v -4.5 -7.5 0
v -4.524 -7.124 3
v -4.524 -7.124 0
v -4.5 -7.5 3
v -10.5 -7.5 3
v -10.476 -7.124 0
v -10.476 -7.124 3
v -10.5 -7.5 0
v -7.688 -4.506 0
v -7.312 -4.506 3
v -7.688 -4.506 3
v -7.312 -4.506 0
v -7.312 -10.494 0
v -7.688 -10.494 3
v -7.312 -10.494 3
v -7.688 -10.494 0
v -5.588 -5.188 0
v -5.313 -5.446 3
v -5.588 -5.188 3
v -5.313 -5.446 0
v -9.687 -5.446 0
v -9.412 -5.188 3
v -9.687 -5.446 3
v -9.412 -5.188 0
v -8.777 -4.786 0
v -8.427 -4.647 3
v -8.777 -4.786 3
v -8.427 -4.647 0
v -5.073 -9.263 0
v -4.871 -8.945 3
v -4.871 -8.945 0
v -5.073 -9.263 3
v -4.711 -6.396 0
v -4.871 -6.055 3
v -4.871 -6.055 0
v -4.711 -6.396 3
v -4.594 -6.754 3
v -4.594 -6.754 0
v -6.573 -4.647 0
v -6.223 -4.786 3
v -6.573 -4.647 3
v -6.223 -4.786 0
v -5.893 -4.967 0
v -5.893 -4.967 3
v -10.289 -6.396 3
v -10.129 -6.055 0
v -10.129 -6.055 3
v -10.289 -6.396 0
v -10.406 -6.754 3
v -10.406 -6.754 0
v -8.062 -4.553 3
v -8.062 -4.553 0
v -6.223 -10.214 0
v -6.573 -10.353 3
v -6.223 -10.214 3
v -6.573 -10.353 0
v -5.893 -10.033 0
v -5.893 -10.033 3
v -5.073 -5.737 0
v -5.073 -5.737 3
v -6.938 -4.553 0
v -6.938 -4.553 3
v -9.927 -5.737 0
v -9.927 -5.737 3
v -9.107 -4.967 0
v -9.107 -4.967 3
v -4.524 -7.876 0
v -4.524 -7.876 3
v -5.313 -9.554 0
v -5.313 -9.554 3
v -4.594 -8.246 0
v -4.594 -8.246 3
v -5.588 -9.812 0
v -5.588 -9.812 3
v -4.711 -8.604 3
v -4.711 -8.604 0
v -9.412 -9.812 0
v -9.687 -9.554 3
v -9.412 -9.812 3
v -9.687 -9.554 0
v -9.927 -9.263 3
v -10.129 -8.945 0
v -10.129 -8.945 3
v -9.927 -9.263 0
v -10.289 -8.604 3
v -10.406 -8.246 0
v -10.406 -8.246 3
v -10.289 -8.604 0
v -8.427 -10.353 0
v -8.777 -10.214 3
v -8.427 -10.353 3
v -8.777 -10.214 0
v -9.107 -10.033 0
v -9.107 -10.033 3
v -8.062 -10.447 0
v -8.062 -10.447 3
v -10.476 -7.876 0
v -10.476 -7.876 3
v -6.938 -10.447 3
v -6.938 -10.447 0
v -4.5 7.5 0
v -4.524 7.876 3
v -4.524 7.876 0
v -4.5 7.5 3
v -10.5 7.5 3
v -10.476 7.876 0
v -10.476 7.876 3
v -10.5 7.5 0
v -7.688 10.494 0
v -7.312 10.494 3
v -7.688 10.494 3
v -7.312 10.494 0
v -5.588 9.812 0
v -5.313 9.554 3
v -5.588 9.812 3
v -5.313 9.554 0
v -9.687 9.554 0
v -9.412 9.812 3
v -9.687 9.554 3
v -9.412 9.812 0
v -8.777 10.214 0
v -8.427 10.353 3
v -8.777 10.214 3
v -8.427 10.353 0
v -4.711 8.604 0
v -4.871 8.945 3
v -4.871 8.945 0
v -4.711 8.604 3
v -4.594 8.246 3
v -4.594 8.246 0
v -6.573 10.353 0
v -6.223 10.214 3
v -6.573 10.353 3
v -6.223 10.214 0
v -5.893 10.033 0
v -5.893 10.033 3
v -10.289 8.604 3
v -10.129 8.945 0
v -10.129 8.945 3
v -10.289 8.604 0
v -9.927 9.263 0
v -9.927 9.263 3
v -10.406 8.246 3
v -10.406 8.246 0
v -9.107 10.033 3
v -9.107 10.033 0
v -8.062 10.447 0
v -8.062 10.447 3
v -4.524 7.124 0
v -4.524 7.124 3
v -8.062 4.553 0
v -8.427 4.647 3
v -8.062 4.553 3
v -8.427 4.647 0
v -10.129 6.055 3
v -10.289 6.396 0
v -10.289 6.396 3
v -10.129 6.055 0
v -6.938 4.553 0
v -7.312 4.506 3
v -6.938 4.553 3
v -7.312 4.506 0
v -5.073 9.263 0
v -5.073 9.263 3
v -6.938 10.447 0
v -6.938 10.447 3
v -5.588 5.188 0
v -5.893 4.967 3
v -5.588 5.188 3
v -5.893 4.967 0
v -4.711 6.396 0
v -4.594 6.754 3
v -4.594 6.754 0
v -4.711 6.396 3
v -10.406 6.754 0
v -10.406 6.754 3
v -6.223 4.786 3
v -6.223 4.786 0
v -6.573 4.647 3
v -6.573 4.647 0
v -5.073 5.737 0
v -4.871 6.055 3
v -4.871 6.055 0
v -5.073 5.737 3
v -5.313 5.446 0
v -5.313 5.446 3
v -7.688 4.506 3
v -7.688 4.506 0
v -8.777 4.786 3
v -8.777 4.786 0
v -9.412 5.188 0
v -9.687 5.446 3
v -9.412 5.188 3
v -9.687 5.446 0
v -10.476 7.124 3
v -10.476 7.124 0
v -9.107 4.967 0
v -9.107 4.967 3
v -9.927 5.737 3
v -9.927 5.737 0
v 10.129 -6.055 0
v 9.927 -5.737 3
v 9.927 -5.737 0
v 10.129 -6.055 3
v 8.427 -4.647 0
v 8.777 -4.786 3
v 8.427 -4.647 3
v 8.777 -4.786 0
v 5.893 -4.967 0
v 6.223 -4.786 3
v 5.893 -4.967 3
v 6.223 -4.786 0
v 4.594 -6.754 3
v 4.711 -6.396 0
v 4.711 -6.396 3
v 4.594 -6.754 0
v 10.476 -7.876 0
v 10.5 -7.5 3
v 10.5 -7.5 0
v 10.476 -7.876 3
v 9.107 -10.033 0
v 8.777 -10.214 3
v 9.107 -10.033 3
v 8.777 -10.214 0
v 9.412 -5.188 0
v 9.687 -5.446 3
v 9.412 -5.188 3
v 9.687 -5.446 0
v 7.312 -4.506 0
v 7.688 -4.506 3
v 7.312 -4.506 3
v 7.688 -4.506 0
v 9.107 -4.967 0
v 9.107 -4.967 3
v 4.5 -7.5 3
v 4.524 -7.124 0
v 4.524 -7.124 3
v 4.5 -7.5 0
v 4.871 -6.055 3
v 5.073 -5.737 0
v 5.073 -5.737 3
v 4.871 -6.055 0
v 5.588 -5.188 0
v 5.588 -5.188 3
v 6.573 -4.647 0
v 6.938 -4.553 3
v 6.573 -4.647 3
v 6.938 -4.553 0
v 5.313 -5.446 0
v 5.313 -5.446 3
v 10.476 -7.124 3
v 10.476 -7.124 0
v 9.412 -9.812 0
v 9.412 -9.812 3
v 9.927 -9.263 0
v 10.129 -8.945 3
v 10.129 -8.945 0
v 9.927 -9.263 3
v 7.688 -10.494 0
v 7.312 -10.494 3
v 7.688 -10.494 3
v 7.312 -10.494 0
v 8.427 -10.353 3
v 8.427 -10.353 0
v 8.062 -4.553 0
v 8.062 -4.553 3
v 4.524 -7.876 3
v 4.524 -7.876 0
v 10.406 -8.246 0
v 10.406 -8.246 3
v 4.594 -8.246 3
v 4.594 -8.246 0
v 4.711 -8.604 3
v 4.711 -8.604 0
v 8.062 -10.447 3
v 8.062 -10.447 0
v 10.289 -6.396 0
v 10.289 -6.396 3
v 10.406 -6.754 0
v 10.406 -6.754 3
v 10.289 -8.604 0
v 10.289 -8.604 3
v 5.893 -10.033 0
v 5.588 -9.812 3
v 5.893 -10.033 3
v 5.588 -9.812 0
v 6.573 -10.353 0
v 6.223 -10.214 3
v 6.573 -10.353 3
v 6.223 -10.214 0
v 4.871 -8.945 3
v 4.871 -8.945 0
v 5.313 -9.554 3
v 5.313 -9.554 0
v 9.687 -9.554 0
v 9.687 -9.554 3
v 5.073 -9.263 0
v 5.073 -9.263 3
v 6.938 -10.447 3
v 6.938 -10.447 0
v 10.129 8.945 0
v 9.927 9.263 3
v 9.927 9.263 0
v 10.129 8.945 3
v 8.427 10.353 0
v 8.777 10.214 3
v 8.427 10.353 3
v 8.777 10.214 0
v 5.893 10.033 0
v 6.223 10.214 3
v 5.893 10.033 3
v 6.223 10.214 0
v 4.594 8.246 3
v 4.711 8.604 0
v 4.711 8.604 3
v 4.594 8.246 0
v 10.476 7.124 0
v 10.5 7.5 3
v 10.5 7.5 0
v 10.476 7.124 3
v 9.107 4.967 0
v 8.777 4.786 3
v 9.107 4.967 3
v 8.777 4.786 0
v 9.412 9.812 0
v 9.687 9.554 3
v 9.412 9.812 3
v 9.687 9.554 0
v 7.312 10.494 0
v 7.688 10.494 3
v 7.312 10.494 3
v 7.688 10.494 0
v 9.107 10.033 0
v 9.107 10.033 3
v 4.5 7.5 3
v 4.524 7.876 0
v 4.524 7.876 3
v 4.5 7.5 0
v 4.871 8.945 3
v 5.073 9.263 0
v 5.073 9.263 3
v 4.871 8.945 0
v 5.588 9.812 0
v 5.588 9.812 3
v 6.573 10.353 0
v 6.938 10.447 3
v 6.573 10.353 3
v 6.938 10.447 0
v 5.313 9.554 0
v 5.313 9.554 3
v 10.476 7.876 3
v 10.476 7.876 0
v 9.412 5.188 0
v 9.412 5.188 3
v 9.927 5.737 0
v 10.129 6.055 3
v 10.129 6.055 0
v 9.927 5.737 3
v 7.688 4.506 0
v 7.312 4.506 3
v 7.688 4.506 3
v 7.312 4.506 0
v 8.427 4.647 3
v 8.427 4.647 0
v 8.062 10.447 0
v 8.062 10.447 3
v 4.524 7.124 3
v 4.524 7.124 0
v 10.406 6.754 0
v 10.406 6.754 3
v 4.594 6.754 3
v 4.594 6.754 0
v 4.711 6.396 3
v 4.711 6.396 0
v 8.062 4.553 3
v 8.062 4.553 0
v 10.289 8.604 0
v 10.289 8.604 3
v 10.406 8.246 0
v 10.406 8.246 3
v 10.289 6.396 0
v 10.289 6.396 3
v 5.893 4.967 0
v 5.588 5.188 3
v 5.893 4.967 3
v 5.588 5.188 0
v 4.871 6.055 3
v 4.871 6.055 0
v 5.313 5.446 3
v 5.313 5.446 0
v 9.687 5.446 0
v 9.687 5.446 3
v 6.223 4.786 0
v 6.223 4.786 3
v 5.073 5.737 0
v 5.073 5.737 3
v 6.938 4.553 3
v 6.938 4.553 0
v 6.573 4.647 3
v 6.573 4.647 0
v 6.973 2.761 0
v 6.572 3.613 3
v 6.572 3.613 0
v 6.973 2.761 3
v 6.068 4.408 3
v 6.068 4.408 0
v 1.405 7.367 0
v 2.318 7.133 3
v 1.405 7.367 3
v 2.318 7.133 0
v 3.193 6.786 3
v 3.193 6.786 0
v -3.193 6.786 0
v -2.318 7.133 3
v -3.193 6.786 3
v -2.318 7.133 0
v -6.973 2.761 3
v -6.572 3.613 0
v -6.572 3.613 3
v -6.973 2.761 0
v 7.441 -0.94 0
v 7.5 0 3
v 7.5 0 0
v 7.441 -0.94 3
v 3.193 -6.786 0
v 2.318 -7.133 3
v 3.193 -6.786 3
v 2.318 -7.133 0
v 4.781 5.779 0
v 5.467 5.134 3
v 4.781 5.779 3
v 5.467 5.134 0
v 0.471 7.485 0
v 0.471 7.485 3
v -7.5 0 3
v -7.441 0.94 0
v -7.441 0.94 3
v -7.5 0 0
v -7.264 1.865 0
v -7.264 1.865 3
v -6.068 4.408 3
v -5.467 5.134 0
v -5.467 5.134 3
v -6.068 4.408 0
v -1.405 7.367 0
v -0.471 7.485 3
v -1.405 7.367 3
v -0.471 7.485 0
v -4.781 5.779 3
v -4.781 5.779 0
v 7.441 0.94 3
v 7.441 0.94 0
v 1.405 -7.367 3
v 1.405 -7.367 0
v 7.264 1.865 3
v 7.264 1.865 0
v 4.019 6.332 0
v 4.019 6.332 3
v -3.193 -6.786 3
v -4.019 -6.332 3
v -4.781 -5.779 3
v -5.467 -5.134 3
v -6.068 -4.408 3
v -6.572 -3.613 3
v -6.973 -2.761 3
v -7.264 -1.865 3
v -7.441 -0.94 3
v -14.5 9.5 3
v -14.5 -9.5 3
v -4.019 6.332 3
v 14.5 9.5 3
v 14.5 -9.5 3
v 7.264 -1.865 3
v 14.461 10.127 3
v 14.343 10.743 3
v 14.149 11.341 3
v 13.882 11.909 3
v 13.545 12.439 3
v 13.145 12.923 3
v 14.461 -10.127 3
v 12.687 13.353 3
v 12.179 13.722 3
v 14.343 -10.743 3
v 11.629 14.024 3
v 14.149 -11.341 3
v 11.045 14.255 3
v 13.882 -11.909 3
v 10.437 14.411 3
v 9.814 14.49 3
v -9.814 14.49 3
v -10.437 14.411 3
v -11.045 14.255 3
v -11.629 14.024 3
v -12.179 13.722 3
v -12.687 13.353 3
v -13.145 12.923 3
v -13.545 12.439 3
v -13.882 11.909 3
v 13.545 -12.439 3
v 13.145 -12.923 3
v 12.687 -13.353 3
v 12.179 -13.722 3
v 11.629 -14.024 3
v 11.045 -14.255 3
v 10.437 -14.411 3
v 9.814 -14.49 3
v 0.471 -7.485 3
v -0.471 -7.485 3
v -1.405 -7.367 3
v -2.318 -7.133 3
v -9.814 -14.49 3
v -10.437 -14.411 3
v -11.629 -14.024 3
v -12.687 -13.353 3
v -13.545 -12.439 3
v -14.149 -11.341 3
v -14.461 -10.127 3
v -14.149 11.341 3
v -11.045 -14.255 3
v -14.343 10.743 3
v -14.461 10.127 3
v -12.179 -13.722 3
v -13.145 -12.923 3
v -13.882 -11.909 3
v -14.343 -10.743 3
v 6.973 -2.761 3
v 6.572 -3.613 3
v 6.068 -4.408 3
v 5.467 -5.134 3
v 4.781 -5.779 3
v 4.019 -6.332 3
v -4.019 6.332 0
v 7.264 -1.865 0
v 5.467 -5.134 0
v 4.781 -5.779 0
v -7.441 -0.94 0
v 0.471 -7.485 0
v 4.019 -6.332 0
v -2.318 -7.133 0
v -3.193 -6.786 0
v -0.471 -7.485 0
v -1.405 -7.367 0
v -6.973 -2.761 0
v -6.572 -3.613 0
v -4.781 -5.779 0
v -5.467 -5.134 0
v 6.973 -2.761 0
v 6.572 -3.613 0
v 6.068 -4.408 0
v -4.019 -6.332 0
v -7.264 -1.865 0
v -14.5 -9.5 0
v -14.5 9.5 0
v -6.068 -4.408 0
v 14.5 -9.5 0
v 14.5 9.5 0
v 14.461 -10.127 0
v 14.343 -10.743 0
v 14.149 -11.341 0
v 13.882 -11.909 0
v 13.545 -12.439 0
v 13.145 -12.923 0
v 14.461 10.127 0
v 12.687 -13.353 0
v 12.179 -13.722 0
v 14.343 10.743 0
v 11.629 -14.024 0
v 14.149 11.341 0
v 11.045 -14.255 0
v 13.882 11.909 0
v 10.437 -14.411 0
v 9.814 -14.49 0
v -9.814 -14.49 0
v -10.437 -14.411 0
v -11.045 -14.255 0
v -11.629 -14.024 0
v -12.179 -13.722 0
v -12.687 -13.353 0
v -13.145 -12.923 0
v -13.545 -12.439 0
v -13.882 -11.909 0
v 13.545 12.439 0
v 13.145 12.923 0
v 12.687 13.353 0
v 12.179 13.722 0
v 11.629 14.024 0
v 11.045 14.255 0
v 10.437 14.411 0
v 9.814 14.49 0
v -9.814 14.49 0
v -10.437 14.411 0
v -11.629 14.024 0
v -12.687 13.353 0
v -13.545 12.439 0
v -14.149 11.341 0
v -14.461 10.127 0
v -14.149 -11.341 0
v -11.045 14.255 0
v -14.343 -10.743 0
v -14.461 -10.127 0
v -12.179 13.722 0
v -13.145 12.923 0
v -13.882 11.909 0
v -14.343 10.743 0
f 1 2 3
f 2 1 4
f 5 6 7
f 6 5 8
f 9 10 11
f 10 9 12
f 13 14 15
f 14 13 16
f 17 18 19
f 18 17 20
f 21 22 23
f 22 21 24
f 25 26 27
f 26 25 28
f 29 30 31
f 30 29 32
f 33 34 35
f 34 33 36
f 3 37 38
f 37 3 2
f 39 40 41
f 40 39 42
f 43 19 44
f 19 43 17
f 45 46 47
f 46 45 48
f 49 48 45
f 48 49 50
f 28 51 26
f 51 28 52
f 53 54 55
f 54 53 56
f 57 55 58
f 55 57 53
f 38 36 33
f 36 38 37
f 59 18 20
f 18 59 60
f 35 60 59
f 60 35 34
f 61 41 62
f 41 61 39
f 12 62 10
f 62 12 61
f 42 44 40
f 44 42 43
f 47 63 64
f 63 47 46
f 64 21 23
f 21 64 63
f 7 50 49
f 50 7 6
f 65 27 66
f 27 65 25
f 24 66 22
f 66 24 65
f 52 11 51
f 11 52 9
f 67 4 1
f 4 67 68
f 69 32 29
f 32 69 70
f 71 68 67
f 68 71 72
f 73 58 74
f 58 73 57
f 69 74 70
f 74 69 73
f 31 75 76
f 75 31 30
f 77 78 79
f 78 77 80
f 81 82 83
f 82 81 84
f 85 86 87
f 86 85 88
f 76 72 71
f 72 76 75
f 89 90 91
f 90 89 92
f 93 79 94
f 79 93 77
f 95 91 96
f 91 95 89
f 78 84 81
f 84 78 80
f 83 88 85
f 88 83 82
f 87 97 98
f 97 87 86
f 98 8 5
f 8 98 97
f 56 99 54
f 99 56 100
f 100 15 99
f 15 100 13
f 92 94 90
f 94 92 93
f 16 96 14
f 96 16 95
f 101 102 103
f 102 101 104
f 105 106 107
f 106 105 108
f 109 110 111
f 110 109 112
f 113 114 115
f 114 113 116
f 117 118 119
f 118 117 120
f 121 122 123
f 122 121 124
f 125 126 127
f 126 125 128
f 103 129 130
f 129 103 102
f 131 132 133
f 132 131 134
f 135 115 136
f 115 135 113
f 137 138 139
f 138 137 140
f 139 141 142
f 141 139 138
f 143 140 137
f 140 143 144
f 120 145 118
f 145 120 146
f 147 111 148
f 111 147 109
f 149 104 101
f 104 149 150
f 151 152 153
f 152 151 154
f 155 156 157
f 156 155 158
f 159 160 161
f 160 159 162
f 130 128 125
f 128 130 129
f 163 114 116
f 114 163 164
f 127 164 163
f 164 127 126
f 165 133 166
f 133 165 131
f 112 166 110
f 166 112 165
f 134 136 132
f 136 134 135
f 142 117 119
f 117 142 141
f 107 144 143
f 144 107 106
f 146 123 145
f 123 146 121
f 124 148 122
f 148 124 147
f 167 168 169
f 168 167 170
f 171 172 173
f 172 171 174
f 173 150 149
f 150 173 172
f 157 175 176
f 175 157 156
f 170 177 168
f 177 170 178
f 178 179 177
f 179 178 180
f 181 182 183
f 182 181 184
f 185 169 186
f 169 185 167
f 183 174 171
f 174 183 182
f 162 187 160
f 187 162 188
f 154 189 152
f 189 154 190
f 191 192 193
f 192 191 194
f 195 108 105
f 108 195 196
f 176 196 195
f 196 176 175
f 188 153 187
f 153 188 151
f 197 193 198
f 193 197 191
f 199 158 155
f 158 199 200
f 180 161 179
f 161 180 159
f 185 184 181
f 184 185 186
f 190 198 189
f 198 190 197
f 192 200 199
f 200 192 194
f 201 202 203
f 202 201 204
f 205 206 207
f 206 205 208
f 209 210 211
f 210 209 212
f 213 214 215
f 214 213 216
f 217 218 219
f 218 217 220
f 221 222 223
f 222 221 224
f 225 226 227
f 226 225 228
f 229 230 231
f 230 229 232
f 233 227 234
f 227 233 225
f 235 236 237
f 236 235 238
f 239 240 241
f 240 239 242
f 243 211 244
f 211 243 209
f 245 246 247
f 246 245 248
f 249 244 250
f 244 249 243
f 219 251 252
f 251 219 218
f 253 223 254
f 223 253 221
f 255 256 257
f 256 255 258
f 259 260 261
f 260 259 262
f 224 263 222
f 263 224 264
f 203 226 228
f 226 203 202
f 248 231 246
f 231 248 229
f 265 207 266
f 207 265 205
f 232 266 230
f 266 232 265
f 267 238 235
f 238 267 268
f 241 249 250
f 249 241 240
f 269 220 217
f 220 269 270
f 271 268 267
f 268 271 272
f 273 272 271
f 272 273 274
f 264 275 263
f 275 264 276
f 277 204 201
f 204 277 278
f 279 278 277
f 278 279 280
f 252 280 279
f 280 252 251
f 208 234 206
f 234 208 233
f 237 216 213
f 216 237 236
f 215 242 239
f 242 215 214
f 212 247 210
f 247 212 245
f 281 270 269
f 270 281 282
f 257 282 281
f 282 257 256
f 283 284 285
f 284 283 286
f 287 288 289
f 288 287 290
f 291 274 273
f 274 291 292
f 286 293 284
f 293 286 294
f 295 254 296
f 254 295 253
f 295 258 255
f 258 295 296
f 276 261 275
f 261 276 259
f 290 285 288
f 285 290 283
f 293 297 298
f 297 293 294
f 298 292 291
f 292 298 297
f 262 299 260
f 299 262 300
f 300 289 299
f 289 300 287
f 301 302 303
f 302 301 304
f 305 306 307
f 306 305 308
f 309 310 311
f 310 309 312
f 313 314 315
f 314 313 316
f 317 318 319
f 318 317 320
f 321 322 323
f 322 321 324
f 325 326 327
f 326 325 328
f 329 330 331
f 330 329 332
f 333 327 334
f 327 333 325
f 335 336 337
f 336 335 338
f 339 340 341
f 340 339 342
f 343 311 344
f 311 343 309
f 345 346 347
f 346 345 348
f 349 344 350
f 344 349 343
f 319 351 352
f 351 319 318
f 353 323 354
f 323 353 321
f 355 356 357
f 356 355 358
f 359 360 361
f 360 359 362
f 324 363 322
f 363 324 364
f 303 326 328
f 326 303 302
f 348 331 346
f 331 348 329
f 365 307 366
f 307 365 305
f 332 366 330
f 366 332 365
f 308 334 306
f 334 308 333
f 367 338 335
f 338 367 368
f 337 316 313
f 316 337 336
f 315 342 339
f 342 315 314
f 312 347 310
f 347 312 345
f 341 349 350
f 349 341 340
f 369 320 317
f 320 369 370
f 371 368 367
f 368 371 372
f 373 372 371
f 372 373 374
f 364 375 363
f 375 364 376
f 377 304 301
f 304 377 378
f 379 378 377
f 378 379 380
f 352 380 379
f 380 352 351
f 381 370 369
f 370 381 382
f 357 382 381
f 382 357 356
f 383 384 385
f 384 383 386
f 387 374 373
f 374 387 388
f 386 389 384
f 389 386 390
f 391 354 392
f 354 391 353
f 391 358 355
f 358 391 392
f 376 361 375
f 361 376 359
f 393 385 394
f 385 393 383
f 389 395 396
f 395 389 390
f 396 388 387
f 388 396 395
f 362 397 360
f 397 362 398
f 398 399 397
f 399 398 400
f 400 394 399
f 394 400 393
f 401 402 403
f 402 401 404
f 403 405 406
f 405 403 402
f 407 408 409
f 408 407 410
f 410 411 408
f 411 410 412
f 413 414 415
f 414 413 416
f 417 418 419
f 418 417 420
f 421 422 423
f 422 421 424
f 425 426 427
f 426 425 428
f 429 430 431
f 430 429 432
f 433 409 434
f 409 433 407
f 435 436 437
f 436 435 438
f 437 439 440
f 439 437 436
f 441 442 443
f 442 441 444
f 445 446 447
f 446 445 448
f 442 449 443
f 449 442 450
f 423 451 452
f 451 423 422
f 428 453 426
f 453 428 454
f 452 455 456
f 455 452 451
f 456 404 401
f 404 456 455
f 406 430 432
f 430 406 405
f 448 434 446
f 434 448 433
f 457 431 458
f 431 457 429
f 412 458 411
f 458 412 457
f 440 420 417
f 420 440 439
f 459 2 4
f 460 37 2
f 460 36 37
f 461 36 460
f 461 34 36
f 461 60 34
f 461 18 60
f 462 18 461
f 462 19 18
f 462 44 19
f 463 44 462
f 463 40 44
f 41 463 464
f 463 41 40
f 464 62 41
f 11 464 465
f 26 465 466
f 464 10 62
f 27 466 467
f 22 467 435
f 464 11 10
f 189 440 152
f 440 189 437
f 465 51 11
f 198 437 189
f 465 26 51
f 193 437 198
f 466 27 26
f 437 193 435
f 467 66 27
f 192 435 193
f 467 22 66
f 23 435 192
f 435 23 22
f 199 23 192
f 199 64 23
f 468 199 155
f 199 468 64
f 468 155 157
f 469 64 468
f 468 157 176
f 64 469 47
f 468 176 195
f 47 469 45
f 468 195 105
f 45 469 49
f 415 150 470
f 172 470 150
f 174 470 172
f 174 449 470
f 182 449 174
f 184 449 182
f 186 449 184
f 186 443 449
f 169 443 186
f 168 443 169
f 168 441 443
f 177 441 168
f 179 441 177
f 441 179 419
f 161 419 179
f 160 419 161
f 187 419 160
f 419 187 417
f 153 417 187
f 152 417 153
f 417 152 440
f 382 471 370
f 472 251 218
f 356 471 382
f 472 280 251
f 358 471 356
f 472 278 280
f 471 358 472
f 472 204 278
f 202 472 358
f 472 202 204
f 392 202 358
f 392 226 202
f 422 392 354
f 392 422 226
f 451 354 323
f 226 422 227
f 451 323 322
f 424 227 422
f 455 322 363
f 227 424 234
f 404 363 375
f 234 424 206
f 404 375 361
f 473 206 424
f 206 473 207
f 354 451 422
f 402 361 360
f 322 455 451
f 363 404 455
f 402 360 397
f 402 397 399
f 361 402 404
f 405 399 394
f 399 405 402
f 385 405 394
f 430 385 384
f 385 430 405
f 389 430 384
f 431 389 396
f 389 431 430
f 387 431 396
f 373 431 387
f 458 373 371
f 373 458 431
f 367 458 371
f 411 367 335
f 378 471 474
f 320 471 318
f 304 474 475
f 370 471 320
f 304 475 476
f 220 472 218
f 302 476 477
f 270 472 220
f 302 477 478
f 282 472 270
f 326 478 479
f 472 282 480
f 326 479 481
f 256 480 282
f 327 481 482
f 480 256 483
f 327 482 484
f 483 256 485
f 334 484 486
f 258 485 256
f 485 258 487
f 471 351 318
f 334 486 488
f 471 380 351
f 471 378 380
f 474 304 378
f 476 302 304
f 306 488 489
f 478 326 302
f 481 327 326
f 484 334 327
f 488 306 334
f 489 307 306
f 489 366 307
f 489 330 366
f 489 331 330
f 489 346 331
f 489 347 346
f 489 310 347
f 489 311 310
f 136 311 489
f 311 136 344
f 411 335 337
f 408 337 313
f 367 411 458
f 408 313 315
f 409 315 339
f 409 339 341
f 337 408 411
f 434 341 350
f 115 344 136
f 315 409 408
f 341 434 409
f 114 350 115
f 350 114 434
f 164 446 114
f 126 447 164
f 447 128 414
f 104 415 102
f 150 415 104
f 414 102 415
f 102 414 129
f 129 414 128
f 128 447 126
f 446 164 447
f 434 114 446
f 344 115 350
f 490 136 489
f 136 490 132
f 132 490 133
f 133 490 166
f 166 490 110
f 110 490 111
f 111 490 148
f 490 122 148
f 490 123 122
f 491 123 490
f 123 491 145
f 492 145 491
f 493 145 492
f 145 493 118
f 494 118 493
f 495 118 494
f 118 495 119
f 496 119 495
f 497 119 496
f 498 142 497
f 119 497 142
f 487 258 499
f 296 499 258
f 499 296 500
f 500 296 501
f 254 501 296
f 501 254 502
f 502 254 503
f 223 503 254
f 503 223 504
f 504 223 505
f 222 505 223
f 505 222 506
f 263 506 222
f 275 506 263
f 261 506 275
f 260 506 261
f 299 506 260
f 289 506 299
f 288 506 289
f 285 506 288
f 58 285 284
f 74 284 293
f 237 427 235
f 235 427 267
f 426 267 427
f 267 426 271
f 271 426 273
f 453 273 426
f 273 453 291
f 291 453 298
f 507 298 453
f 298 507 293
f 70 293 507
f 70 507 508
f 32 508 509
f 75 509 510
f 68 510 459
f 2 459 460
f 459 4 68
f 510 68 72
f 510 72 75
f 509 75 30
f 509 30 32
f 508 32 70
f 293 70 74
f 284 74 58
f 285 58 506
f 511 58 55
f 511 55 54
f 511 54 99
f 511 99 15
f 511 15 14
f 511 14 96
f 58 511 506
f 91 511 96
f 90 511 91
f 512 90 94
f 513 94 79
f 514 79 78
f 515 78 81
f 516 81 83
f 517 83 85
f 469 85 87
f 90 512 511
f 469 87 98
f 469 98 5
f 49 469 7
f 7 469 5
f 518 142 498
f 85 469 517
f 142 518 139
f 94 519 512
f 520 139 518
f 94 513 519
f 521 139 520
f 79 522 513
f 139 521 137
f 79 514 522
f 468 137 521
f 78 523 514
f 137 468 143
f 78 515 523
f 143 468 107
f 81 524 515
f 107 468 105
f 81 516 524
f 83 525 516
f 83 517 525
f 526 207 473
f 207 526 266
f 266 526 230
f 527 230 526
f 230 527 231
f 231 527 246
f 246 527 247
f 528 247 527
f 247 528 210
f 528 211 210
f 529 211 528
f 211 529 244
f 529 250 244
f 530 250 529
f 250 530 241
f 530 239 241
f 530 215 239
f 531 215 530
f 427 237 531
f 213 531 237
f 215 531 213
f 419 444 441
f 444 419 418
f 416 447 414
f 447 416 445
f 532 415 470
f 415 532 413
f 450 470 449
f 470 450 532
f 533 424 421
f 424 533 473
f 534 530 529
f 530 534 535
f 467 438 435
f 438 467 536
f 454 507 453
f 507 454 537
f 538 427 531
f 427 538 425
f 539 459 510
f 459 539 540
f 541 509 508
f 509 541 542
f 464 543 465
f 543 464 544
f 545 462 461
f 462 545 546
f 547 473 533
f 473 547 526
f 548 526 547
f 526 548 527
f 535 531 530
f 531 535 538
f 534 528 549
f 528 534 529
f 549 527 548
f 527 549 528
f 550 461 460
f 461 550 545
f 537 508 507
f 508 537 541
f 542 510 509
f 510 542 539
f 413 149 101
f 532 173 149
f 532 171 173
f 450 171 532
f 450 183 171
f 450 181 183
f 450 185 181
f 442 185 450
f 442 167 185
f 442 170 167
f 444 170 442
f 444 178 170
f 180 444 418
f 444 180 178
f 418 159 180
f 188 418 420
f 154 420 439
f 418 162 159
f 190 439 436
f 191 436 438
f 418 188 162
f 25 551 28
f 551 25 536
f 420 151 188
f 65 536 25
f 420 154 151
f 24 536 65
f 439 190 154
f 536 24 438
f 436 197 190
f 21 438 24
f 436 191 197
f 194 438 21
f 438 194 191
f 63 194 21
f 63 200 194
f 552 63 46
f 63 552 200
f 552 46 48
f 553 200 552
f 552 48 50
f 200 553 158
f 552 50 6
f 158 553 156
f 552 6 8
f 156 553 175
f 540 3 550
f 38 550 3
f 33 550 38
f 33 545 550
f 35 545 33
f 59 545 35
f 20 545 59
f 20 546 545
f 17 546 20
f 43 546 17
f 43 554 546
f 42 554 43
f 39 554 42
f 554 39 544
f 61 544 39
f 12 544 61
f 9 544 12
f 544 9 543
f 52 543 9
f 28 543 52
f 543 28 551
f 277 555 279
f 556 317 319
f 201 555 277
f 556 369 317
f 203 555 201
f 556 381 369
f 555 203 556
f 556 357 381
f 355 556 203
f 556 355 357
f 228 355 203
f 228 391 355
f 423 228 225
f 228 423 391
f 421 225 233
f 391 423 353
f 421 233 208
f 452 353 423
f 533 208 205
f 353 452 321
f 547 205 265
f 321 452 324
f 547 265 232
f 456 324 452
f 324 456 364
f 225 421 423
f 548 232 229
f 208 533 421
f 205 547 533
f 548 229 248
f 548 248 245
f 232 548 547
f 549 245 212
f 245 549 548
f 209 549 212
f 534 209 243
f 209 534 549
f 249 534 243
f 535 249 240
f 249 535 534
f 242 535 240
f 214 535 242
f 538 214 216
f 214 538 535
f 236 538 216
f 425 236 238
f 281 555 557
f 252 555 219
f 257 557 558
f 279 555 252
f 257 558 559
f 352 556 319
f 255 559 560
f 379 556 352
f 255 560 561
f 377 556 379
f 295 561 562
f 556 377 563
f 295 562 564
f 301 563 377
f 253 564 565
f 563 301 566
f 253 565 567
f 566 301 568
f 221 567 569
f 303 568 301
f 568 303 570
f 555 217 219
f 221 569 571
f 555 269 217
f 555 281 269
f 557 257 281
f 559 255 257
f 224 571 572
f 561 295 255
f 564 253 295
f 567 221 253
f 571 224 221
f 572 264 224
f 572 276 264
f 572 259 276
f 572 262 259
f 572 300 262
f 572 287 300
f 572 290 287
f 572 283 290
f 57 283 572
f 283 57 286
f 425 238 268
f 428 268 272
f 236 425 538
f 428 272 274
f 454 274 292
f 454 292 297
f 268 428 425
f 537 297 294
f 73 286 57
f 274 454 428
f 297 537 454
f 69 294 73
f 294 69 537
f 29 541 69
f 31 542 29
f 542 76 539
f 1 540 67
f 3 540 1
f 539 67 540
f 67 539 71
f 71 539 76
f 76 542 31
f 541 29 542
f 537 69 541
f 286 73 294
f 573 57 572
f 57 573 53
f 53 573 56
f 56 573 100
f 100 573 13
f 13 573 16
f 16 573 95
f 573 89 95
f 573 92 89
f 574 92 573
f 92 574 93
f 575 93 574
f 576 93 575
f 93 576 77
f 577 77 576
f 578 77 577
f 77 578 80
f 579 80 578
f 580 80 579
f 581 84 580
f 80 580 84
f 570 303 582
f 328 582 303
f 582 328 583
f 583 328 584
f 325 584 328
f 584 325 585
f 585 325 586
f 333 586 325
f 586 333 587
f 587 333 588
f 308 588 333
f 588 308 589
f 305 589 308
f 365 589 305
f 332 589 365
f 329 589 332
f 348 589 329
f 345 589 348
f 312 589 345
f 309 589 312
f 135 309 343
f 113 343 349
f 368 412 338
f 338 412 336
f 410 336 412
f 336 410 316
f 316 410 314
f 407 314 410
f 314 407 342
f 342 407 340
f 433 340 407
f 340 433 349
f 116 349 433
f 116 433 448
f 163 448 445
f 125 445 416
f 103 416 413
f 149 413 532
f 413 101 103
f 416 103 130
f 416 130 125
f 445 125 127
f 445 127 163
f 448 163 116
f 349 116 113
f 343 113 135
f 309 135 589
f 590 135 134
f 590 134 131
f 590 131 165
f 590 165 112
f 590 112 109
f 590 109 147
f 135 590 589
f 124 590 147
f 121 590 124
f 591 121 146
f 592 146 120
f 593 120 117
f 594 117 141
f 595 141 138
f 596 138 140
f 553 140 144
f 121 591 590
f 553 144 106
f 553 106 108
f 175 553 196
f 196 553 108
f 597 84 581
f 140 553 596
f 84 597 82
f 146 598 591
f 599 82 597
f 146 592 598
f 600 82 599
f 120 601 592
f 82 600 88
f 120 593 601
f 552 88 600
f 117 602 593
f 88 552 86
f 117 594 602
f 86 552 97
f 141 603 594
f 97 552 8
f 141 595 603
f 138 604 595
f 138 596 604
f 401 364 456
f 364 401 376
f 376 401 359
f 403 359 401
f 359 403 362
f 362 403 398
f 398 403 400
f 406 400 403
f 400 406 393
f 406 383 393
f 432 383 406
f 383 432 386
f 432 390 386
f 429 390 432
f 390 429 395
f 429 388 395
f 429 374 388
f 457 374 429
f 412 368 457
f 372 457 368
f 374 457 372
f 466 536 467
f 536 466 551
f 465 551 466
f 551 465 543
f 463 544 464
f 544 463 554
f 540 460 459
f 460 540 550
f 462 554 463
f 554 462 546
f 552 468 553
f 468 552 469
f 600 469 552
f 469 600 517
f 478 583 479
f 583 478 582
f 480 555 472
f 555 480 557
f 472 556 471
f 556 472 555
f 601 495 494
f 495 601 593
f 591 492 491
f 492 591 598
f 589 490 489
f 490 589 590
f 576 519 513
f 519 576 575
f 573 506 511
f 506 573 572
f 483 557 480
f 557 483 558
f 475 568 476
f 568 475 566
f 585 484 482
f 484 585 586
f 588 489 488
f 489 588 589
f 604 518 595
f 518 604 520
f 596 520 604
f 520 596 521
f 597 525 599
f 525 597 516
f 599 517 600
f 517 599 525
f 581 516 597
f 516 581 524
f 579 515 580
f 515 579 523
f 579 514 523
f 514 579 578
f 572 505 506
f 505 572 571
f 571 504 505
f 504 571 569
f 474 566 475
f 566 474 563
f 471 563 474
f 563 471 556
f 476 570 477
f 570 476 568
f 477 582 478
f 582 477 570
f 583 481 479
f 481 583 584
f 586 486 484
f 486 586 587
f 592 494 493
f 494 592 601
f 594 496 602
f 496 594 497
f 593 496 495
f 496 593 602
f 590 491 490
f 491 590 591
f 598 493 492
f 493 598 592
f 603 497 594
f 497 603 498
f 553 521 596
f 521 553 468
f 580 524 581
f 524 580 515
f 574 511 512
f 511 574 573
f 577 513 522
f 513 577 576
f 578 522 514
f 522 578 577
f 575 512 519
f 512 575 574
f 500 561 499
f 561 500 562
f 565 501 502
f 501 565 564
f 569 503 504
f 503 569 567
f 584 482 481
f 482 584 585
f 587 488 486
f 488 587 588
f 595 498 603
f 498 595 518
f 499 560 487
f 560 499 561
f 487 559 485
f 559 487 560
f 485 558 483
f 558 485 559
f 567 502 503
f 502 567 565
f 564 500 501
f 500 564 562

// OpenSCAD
$fn = 50;


difference() {
	union() {
		hull() {
			translate(v = [-9.5000000000, 9.5000000000, 0]) {
				cylinder(h = 3, r = 5);
			}
			translate(v = [9.5000000000, 9.5000000000, 0]) {
				cylinder(h = 3, r = 5);
			}
			translate(v = [-9.5000000000, -9.5000000000, 0]) {
				cylinder(h = 3, r = 5);
			}
			translate(v = [9.5000000000, -9.5000000000, 0]) {
				cylinder(h = 3, r = 5);
			}
		}
	}
	union() {
		#translate(v = [-7.5000000000, -7.5000000000, -100.0000000000]) {
			cylinder(h = 200, r = 3.0000000000);
		}
		#translate(v = [-7.5000000000, 7.5000000000, -100.0000000000]) {
			cylinder(h = 200, r = 3.0000000000);
		}
		#translate(v = [7.5000000000, -7.5000000000, -100.0000000000]) {
			cylinder(h = 200, r = 3.0000000000);
		}
		#translate(v = [7.5000000000, 7.5000000000, -100.0000000000]) {
			cylinder(h = 200, r = 3.0000000000);
		}
		#cylinder(h = 3, r = 7.5000000000);
	}
}
